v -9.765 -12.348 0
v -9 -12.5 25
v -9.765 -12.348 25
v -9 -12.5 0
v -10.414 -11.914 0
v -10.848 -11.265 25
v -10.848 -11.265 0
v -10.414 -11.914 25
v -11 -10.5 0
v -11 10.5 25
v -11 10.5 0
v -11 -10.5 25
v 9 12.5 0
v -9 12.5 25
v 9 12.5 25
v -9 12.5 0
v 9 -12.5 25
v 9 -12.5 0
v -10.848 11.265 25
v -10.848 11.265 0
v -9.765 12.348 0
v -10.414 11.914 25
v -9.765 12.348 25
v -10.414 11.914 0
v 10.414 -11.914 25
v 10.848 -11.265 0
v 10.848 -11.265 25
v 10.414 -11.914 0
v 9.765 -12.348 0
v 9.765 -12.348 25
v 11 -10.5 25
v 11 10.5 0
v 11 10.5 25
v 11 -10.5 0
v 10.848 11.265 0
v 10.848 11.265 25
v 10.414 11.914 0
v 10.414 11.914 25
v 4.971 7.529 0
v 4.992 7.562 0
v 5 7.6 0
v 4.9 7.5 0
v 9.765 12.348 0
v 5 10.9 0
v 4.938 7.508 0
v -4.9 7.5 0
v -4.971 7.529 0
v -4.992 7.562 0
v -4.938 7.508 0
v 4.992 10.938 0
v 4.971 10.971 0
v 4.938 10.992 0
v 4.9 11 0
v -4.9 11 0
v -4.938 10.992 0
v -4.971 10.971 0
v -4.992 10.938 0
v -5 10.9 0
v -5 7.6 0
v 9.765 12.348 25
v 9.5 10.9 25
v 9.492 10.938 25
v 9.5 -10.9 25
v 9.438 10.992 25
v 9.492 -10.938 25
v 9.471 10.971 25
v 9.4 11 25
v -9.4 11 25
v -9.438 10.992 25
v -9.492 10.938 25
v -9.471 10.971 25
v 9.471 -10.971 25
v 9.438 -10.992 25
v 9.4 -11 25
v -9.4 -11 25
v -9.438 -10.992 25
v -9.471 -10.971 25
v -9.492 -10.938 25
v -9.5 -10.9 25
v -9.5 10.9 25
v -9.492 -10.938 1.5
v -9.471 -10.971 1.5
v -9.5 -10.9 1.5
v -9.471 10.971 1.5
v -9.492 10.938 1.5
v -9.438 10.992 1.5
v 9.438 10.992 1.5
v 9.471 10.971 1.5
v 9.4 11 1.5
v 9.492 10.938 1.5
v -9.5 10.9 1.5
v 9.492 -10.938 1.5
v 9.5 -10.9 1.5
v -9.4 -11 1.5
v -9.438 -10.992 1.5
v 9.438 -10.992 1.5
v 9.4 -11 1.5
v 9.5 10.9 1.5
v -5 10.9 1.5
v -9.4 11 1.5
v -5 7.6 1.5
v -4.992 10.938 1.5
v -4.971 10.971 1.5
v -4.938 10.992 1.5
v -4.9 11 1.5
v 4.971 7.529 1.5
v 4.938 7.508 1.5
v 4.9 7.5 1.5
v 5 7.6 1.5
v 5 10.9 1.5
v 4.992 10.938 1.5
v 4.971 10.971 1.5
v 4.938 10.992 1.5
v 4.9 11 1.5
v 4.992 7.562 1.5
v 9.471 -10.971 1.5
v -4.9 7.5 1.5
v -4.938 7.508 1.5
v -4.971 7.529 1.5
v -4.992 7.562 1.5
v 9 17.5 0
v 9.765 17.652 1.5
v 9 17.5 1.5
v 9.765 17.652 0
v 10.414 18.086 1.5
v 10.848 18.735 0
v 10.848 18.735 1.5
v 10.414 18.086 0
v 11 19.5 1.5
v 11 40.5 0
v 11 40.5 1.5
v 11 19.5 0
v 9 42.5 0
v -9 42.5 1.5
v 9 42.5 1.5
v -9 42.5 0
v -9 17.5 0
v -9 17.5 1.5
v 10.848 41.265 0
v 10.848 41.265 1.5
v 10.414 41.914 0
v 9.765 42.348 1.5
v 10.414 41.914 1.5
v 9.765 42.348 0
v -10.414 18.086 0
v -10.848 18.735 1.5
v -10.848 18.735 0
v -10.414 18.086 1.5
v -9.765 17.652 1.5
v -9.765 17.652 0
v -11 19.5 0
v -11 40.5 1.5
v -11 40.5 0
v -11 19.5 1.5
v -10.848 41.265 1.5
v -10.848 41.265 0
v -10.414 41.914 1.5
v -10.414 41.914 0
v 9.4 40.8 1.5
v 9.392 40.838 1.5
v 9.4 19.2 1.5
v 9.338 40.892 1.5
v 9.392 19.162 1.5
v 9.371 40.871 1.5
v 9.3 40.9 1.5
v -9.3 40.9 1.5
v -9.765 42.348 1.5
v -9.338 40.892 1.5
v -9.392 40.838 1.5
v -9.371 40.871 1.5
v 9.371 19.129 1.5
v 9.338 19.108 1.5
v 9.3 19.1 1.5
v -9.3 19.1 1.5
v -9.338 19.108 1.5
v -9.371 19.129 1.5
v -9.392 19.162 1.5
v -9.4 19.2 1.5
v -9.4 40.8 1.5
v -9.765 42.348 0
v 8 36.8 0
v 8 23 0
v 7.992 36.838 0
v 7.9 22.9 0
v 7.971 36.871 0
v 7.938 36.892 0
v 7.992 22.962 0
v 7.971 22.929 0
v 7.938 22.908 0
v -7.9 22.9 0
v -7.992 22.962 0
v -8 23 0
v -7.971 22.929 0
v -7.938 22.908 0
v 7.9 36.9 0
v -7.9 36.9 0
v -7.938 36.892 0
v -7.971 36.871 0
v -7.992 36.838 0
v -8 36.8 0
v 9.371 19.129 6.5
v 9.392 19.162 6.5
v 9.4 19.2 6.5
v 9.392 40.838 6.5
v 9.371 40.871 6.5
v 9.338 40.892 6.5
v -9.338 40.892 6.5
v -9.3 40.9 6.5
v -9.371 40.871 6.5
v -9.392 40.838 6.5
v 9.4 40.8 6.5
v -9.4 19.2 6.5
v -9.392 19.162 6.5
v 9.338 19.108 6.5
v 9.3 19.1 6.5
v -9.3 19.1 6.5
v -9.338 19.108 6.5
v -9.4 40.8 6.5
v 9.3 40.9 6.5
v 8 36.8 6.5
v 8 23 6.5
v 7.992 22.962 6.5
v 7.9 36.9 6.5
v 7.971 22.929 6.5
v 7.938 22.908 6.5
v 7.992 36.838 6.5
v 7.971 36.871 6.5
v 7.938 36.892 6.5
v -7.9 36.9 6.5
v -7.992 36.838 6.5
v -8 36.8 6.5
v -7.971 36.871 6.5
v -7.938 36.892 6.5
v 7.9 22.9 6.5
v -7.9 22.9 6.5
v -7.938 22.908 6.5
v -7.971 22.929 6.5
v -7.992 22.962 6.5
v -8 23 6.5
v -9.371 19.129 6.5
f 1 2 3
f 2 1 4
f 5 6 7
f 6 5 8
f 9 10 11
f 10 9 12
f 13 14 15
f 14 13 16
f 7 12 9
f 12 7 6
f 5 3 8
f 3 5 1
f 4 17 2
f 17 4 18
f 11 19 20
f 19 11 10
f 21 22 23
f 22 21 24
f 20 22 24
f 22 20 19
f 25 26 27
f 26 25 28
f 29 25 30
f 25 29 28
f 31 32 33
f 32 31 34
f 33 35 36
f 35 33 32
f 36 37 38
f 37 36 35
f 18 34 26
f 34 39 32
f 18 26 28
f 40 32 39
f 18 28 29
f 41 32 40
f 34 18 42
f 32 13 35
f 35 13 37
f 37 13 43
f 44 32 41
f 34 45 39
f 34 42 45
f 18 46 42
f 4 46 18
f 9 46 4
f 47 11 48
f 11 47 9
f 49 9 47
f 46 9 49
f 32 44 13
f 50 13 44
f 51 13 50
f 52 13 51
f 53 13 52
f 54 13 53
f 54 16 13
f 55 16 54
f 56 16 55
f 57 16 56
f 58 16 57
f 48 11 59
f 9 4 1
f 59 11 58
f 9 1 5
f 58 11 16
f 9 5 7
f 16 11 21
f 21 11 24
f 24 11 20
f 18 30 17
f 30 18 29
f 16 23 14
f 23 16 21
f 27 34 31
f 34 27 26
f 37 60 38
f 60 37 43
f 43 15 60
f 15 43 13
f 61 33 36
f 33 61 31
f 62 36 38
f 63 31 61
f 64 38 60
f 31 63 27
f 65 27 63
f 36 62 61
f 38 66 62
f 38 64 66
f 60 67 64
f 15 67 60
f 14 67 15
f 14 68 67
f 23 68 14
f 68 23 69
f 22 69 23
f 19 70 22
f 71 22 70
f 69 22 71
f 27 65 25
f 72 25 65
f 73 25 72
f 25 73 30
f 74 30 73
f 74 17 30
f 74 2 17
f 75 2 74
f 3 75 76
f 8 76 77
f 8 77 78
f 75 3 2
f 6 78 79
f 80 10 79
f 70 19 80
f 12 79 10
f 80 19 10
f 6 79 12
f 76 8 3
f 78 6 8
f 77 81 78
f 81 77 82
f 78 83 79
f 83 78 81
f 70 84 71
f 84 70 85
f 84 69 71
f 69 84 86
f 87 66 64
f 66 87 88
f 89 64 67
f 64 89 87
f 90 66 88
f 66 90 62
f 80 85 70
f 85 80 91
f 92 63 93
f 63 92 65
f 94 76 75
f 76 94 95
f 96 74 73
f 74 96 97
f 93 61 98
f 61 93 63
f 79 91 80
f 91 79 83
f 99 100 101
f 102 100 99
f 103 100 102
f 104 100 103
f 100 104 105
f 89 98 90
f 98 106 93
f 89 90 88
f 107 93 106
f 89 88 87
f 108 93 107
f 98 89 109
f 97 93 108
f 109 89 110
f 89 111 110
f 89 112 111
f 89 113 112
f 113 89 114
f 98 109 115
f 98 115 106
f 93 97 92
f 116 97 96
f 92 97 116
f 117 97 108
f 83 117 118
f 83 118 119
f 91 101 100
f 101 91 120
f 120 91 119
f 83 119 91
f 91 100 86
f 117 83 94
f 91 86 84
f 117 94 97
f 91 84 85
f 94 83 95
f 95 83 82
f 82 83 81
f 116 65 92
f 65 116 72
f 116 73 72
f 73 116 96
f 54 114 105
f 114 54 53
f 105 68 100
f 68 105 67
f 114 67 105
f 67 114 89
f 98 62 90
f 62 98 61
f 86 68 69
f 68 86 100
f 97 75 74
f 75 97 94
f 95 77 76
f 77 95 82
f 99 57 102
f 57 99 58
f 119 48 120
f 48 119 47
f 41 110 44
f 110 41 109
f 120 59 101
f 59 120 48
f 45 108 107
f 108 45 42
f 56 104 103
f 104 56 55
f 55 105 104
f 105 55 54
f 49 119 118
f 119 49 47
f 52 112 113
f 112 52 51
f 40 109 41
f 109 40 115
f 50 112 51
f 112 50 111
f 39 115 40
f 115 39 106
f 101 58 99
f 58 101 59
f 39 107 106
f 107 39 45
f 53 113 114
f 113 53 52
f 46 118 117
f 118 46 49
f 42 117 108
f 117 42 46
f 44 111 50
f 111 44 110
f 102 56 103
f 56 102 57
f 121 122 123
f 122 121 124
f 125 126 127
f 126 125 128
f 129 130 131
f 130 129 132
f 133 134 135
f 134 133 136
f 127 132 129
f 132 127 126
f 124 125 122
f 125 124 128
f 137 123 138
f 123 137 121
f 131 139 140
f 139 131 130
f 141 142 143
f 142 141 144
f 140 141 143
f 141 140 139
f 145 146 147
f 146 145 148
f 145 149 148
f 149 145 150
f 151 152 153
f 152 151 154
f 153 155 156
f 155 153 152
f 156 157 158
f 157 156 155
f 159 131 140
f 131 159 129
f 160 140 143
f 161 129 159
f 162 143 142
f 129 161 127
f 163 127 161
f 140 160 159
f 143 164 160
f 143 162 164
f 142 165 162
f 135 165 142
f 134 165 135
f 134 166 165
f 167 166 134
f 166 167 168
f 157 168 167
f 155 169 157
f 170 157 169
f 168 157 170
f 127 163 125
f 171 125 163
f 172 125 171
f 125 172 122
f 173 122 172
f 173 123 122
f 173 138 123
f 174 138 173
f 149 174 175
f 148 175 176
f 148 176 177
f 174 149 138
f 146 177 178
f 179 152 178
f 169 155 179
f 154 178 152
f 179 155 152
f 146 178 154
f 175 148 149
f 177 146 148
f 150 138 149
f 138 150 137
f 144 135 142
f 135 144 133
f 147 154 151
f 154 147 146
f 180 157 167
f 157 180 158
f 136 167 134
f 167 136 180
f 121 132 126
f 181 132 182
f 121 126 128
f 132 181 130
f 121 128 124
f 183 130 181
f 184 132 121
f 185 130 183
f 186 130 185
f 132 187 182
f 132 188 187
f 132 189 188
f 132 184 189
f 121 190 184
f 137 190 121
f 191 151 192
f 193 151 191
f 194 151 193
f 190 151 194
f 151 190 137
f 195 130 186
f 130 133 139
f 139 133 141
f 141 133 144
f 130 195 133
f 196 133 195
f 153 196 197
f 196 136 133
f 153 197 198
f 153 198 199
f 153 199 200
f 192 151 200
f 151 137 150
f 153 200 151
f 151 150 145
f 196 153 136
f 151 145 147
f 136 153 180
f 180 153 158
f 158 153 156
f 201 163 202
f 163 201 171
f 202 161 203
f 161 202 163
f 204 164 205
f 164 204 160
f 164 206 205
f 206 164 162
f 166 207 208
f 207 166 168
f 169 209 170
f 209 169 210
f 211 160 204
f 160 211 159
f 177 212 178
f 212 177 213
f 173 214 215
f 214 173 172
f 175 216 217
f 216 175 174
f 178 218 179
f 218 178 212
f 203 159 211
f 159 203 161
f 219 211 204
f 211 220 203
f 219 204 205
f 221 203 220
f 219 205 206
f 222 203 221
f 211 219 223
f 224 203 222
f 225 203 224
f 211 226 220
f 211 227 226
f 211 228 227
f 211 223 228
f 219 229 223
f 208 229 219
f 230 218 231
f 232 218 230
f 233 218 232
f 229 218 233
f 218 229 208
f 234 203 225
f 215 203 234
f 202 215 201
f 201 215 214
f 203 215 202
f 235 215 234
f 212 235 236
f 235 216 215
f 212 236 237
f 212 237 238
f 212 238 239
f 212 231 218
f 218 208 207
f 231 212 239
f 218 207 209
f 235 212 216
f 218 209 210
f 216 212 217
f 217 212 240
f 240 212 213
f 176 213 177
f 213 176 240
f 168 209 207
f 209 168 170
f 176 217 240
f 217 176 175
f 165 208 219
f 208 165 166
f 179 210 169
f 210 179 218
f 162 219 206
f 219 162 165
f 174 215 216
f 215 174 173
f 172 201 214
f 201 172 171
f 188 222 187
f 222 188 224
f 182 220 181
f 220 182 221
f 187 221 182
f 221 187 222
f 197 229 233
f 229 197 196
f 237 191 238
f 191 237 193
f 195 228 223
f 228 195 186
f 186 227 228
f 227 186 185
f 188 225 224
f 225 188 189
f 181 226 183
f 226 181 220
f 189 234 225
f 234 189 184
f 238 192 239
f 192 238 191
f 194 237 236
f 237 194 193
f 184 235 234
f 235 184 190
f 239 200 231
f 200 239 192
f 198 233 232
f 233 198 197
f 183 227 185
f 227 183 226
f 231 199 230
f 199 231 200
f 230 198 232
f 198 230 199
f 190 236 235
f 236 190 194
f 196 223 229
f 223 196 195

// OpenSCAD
wC=16;  // width oft the combined connectors
dC=23.5; //depth of the combined connectors
hC=22; //height of the cobined connectors

wE=16; //width of the rj45 connector
hE=14; //height of the rj45 connector

lsT=1.5; //lid left right support
wT=1.5;  //wall thickness
wI=wC+lsT*2; //width inside
wO=wI+wT*2; //width outside

dI=dC;  //depth inside
dO=dI+wT; //depth outside

hI=hC;  //height inside
hO=hI+wT*2; //height outside

wU=10;  //width of the usb-c connector
hU=3.5;  //height of the usc-c connector

eR=2; //edge radius
t=0.2; //tolerance of the lid
lD=5; //depth of the lid

base();
translate([0,30,wT+dO])rotate([0,180,0])lid();

module lid(){
  translate([0,0,dO]){  
    difference(){
      union(){
        rcube([wO,hO,wT],eR);
        translate([0,0,-lD])rcube([wI-t,hI-t,lD],0.1);
      }
      translate([0,hI/2-hE/2-hU-0.6,-6])rcube([wE,hE,10],0.1);
    }
  }
}

module base(){
  difference(){
    rcube([wO,hO,dO],eR);
    translate([0,0,wT])rcube([wI,hI,dI+1],0.1);
    translate([0,hI/2-hU/2,-1])rcube([wU,hU,wT+2],0.1);
  }
}




module rcube(size,radius){
  $fn=16;
linear_extrude(height=size[2])
if(radius>0){
hull()
{
    // place 4 circles in the corners, with the given radius
    translate([(-size[0]/2)+(radius), (-size[1]/2)+(radius), 0])
    circle(r=radius);

    translate([(size[0]/2)-(radius), (-size[1]/2)+(radius), 0])
    circle(r=radius);

    translate([(-size[0]/2)+(radius), (size[1]/2)-(radius), 0])
    circle(r=radius);

    translate([(size[0]/2)-(radius), (size[1]/2)-(radius), 0])
    circle(r=radius);
}
}
if(radius==0){
translate([0,0,size[2]/2])cube(size,center=true);
}
}
